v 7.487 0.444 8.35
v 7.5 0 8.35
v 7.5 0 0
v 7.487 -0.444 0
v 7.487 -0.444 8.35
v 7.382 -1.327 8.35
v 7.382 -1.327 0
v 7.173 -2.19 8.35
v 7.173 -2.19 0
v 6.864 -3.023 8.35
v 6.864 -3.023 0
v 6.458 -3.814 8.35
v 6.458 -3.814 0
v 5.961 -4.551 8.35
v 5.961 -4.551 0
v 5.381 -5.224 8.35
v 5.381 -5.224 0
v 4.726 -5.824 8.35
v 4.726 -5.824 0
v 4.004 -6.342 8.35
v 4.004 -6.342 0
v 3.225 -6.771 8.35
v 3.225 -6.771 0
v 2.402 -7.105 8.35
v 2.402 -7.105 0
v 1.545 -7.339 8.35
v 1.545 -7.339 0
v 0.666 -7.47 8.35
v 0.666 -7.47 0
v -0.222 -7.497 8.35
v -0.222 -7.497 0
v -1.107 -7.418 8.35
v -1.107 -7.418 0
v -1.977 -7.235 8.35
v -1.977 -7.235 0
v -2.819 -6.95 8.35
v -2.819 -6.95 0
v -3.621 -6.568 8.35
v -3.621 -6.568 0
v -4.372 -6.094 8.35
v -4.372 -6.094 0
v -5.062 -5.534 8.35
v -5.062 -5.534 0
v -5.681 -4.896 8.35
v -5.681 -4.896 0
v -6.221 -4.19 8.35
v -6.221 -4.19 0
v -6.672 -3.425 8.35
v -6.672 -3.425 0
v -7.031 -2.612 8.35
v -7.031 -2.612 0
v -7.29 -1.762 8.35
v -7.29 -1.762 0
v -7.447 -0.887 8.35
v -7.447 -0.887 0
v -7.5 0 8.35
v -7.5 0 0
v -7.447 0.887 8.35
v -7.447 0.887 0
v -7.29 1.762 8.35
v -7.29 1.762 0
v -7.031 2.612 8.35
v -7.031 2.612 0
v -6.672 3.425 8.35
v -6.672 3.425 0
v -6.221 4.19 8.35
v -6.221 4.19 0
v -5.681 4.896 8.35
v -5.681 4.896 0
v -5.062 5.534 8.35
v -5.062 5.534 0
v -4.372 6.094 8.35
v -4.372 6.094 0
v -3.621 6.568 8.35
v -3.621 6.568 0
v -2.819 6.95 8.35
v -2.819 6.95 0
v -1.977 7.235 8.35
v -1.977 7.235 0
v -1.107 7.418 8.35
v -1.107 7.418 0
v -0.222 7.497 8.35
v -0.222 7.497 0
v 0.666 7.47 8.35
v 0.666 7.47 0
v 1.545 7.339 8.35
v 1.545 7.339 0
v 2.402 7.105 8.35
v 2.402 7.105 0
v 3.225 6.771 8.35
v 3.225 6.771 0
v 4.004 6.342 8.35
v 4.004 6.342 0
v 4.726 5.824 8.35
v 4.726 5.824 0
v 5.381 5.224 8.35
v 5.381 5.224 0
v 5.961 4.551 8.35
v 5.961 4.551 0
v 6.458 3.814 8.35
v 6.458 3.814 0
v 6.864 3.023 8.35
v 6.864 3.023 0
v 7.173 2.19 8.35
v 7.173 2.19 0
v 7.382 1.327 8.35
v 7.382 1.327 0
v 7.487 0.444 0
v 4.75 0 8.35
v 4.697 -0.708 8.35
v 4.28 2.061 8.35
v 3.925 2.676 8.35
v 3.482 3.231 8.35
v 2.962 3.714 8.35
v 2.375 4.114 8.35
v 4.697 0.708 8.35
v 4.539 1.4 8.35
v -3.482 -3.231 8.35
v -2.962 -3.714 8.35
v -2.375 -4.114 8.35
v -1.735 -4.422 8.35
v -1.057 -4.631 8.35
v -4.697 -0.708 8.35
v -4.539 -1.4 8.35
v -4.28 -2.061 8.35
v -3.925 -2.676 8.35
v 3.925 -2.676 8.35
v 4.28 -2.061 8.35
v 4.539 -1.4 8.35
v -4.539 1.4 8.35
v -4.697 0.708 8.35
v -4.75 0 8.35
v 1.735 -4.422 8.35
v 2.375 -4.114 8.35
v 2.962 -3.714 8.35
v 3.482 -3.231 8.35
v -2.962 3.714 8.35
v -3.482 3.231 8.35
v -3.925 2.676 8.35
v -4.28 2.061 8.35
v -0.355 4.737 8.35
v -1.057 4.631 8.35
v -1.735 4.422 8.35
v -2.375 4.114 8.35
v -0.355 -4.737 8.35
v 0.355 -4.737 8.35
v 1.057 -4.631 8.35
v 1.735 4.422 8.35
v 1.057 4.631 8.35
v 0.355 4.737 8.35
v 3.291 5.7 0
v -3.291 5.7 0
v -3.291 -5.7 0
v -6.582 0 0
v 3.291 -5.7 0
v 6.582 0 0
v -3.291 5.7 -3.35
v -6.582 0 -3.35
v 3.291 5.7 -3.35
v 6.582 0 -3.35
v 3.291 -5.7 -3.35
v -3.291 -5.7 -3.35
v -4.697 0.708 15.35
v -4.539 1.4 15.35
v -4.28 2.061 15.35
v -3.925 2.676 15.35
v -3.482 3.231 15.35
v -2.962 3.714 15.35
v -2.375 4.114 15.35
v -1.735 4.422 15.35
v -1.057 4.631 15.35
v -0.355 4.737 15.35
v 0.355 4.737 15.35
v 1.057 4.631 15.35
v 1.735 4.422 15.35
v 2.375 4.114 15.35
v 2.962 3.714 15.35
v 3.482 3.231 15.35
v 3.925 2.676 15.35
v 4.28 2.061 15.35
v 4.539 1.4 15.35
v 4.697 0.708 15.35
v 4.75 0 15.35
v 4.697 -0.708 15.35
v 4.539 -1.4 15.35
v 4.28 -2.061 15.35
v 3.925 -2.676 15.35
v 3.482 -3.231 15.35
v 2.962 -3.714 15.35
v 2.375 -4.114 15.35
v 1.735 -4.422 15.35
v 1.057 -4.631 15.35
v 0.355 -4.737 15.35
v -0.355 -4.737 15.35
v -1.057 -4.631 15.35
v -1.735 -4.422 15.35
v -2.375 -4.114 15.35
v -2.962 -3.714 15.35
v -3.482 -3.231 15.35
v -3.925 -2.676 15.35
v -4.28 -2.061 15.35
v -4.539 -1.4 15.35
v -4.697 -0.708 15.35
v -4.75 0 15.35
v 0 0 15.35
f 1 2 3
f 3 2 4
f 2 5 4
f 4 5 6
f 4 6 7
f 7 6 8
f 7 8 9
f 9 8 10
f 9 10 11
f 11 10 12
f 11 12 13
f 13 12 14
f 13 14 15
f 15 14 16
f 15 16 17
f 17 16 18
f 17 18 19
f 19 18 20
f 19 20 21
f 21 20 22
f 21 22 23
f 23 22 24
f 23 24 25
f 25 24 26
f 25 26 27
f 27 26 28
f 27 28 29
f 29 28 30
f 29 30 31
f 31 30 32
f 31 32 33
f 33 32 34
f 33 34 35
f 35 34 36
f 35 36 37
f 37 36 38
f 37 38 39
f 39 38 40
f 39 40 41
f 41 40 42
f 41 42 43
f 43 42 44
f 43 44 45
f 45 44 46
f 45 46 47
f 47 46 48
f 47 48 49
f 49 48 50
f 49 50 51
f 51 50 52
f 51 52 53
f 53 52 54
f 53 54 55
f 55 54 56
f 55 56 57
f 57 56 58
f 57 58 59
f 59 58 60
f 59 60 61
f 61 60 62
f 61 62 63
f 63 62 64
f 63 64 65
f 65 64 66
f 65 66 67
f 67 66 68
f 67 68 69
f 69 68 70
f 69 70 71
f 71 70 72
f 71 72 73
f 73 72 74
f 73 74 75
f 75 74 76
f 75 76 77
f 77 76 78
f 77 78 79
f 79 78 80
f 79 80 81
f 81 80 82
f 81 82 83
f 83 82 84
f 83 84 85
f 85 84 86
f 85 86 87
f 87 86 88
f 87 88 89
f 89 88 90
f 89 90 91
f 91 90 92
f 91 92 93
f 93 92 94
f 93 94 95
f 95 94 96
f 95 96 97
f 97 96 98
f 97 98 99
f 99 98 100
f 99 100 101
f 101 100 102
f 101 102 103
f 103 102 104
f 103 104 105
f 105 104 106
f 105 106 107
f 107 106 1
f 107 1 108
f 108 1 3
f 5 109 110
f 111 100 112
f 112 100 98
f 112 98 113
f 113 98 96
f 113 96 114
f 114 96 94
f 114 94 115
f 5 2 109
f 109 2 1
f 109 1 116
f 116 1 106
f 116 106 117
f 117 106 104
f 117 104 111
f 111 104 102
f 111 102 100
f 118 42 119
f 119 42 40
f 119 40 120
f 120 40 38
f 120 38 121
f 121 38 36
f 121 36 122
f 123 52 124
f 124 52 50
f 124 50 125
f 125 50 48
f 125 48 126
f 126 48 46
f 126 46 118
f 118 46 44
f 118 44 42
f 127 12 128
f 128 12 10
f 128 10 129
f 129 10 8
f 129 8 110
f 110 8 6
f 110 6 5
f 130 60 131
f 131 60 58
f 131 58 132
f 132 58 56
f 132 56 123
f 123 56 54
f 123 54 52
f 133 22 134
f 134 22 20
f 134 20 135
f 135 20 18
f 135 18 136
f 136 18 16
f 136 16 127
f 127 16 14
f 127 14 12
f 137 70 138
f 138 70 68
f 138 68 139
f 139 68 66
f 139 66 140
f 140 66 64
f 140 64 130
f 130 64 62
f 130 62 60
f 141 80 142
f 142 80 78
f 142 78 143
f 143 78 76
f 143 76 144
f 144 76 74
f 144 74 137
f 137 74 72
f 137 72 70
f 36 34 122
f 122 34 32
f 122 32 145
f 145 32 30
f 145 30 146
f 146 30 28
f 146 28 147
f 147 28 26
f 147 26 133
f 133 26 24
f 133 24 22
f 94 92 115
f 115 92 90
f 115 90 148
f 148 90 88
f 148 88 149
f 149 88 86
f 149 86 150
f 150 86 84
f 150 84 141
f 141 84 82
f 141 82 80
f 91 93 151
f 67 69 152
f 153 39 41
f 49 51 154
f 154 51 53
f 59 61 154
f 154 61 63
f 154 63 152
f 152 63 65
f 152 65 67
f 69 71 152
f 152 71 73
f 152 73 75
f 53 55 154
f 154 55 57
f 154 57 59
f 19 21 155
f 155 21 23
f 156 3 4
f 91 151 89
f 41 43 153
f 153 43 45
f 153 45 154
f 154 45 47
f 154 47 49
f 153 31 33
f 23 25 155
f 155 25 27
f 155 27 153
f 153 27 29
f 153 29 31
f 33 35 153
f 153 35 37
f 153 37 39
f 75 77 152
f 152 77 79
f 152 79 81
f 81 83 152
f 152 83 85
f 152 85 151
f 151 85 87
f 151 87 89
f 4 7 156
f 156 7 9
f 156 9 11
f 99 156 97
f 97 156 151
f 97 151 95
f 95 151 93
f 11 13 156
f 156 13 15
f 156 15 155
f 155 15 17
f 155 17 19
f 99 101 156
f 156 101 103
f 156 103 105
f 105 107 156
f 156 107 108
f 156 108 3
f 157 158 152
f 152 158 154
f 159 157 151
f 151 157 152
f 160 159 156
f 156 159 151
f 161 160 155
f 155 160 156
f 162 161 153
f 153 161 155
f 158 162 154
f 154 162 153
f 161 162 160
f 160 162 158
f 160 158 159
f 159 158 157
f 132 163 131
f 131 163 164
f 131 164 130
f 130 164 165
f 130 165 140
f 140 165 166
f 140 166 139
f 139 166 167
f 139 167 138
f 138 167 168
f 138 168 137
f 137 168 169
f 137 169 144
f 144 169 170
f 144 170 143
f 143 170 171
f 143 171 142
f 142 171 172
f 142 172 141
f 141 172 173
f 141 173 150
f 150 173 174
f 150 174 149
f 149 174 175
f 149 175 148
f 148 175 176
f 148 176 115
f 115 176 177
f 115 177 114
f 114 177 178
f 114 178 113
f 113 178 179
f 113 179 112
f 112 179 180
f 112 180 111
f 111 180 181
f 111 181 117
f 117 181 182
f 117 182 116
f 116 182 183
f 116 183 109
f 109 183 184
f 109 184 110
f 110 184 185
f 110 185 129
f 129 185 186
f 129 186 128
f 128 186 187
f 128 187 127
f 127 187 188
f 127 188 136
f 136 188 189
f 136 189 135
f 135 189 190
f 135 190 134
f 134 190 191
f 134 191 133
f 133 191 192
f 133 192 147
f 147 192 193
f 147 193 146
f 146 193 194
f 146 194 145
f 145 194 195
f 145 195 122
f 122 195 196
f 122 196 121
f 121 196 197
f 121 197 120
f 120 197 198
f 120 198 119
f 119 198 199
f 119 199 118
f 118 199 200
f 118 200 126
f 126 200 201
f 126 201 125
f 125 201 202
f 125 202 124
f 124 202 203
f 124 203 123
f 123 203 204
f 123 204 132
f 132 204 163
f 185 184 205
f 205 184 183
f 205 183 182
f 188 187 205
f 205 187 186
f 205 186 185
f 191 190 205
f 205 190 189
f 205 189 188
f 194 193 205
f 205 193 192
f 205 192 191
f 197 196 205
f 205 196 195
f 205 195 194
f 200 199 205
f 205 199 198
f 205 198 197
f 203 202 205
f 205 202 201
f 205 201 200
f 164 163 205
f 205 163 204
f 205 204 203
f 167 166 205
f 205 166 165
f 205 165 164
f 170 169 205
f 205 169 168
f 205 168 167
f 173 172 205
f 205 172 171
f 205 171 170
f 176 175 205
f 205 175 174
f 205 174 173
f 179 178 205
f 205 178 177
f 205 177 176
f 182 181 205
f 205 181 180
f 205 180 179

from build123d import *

# Parameters (mm, degrees)
SKETCH1_R           = 7.5
SKETCH1_R_2         = 4.75
BOSS_EXTRUDE1_DEPTH = 8.35
BOSS_EXTRUDE2_DEPTH = 3.35
BOSS_EXTRUDE3_START = 8.35
SKETCH1_4_R         = 4.75
BOSS_EXTRUDE3_DEPTH = 7


with BuildPart() as part:
    # Sketch1 → Boss-Extrude1 (new body)
    with BuildSketch(Plane.XY):
        Circle(SKETCH1_R)
        Polygon((-3.290896534, 5.7), (-6.581793069, 0), (-3.290896534, -5.7), (3.290896534, -5.7), (6.581793069, 0), (3.290896534, 5.7), align=None, mode=Mode.SUBTRACT)
        Circle(SKETCH1_R)
        Circle(SKETCH1_R_2, mode=Mode.SUBTRACT)
        Circle(SKETCH1_R_2)
    extrude(amount=BOSS_EXTRUDE1_DEPTH)

    # Sketch1<3> → Boss-Extrude2 (add)
    with BuildSketch(Plane.XY):
        Polygon((-3.290896534, -5.7), (3.290896534, -5.7), (6.581793069, 0), (3.290896534, 5.7), (-3.290896534, 5.7), (-6.581793069, 0), align=None)
    extrude(amount=-BOSS_EXTRUDE2_DEPTH)

    # Sketch1<4> → Boss-Extrude3 (add)
    with BuildSketch(Plane.XY.offset(BOSS_EXTRUDE3_START)):
        Circle(SKETCH1_4_R)
    extrude(amount=BOSS_EXTRUDE3_DEPTH)


solid = part.part
